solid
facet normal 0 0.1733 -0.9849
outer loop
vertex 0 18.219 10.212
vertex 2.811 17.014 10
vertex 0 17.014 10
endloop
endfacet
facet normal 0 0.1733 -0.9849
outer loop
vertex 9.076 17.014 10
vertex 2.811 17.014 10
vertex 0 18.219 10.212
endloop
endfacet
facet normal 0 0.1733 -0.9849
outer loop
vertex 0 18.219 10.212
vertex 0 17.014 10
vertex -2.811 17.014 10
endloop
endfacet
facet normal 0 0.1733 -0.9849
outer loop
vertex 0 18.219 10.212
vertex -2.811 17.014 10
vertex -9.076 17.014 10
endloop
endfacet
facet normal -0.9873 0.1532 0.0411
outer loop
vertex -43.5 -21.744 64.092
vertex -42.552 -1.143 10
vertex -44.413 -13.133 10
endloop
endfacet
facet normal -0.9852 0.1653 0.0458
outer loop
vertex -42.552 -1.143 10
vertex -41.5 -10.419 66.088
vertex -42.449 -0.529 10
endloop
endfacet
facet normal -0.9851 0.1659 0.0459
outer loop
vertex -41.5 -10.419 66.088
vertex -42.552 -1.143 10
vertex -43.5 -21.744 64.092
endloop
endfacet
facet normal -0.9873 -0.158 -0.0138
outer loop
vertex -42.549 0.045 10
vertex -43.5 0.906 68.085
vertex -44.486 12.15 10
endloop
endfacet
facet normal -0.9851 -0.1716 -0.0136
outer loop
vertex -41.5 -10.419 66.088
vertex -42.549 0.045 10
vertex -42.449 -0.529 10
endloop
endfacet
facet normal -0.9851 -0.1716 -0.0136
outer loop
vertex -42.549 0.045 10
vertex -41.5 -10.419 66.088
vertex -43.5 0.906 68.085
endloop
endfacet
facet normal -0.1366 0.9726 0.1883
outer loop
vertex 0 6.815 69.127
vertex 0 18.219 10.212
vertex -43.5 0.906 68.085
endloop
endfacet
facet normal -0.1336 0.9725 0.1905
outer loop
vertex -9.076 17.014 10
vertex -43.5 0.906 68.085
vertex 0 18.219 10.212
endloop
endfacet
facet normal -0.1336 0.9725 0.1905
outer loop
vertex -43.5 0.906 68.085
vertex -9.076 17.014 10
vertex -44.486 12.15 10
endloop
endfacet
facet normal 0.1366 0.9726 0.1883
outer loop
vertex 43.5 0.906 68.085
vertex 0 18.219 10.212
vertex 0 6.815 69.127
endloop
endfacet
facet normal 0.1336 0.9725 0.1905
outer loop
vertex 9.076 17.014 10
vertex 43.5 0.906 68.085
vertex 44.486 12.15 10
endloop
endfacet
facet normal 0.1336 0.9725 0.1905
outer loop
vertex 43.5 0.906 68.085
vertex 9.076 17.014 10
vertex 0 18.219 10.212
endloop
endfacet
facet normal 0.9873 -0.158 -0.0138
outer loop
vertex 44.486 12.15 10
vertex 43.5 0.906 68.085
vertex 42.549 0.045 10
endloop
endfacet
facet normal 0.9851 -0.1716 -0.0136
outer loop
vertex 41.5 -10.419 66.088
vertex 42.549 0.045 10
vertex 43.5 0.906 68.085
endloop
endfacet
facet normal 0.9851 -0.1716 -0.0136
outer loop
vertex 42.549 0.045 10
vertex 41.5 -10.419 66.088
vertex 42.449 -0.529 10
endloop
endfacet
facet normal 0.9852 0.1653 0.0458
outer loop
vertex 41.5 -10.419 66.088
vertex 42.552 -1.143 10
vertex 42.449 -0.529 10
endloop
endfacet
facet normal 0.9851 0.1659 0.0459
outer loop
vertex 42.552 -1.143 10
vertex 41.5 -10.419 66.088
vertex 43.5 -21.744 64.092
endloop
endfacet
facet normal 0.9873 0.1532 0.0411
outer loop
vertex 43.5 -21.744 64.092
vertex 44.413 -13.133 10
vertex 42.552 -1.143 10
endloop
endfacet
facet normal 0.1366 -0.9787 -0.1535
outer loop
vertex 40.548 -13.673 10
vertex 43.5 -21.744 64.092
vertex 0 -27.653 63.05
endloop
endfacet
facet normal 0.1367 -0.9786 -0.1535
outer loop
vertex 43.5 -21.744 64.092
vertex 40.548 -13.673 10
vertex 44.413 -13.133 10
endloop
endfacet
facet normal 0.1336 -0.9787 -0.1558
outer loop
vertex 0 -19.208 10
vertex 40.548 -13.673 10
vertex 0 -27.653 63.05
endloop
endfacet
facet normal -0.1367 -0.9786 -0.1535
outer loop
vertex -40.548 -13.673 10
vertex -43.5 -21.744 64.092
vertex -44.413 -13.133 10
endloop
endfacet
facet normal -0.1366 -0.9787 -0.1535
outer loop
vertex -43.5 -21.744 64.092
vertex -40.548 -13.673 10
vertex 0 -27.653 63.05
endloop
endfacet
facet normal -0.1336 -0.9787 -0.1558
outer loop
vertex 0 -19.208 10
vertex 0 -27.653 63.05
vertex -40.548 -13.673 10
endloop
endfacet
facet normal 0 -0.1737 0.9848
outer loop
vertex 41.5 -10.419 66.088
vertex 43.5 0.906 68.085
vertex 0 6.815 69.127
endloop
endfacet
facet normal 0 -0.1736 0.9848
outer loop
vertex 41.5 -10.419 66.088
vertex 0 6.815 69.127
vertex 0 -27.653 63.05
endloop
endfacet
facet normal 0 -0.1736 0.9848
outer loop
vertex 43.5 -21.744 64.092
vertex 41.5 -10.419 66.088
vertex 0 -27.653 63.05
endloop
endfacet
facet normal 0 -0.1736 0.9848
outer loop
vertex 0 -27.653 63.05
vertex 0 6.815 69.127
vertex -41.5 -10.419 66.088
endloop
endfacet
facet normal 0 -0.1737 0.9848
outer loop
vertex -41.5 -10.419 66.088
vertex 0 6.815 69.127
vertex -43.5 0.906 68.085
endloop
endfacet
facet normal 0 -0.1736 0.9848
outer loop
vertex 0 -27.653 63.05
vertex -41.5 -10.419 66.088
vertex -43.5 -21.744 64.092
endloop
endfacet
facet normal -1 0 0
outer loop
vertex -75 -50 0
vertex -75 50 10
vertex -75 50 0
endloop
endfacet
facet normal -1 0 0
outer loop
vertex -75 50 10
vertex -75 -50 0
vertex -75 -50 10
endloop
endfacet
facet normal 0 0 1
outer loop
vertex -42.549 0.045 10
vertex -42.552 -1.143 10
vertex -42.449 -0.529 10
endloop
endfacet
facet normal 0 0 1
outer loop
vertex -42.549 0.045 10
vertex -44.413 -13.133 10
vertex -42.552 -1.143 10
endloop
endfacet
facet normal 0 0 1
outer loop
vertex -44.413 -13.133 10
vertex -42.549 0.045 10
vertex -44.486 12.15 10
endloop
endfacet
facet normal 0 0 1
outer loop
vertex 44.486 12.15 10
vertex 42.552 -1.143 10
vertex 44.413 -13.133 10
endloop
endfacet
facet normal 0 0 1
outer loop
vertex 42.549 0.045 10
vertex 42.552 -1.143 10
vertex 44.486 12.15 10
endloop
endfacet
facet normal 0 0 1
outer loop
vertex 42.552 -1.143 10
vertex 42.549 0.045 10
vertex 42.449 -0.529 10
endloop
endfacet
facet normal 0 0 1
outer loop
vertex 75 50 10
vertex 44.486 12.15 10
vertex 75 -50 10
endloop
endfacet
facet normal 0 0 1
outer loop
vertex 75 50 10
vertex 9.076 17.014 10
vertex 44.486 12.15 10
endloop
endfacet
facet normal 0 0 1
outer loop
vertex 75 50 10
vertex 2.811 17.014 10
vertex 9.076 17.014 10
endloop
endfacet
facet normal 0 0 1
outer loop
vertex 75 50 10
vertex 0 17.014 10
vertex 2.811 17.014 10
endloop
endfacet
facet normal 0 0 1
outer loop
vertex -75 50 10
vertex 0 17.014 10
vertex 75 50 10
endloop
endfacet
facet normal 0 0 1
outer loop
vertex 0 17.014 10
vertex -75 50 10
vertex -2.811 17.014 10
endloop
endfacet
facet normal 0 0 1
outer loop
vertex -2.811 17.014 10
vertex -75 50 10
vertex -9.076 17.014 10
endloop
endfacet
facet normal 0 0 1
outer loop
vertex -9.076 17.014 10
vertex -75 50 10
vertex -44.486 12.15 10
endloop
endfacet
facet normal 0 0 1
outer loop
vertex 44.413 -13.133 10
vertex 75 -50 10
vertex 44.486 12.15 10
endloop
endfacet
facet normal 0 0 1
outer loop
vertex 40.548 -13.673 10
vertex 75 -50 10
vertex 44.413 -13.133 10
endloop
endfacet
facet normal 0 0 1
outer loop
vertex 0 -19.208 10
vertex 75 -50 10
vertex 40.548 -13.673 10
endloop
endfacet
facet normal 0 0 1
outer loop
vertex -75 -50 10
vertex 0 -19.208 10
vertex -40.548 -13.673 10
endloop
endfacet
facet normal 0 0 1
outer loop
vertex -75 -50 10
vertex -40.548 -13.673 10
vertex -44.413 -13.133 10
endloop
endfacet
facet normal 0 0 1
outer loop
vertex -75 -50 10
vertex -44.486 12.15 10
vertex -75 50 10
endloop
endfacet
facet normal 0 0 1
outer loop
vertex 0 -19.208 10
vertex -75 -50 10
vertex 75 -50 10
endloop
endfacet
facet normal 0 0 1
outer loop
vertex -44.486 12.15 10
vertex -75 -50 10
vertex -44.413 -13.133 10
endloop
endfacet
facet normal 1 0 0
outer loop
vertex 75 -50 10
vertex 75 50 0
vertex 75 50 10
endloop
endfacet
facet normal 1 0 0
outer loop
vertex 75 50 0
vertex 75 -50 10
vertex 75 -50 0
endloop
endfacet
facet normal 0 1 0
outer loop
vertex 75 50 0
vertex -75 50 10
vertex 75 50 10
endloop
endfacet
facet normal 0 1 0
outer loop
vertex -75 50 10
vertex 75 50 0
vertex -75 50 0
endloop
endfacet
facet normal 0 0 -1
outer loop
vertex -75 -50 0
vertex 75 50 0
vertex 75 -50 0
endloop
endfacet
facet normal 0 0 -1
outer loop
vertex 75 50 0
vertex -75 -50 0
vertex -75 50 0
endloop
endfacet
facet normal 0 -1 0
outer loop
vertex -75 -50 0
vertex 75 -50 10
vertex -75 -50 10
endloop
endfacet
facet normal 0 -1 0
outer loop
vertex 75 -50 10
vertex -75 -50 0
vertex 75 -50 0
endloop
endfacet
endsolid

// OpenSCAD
width = 89;
width_top = 87;
width_middle = 85;
width_middle_top = 83;
length = 25;
length_top = 23;
length_middle = 37;
length_middle_top = 35;

height = 60;

foot_width = 150; //200;
foot_length = 100; //165;
foot_height = 10;


union() {
translate([0, 0, foot_height - 3]) rotate([10, 0, 0]) polyhedron(
    points= [
        [-width / 2, -length / 2, 0],
        [-width_middle / 2, 0, 0],
        [-width / 2, length / 2, 0],
        [0, length_middle / 2, 0],
        [width / 2, length / 2, 0],
        [width_middle / 2, 0, 0],
        [width / 2, -length / 2, 0],
        [0, -length_middle / 2, 0],
        
        [-width_top / 2, -length_top / 2, height],
        [-width_middle_top / 2, 0, height],
        [-width_top / 2, length_top / 2, height],
        [0, length_middle_top / 2, height],
        [width_top / 2, length_top / 2, height],
        [width_middle_top / 2, 0, height],
        [width_top / 2, -length_top / 2, height],
        [0, -length_middle_top / 2, height],
    ],
    faces = [
                [7, 6, 5, 4, 3, 2, 1, 0],
                
                [0, 1, 9, 8], 
                [1, 2, 10, 9],
                [2, 3, 11, 10],
                [3, 4, 12, 11],
                [4, 5, 13, 12],
                [5, 6, 14, 13],
                [6, 7, 15, 14],
                [7, 0, 8, 15],
                
                [8, 9, 10, 11, 12, 13, 14, 15],
            ]
);

translate([-foot_width/2, -foot_length/2, 0]) cube([foot_width, foot_length, foot_height]);
}
